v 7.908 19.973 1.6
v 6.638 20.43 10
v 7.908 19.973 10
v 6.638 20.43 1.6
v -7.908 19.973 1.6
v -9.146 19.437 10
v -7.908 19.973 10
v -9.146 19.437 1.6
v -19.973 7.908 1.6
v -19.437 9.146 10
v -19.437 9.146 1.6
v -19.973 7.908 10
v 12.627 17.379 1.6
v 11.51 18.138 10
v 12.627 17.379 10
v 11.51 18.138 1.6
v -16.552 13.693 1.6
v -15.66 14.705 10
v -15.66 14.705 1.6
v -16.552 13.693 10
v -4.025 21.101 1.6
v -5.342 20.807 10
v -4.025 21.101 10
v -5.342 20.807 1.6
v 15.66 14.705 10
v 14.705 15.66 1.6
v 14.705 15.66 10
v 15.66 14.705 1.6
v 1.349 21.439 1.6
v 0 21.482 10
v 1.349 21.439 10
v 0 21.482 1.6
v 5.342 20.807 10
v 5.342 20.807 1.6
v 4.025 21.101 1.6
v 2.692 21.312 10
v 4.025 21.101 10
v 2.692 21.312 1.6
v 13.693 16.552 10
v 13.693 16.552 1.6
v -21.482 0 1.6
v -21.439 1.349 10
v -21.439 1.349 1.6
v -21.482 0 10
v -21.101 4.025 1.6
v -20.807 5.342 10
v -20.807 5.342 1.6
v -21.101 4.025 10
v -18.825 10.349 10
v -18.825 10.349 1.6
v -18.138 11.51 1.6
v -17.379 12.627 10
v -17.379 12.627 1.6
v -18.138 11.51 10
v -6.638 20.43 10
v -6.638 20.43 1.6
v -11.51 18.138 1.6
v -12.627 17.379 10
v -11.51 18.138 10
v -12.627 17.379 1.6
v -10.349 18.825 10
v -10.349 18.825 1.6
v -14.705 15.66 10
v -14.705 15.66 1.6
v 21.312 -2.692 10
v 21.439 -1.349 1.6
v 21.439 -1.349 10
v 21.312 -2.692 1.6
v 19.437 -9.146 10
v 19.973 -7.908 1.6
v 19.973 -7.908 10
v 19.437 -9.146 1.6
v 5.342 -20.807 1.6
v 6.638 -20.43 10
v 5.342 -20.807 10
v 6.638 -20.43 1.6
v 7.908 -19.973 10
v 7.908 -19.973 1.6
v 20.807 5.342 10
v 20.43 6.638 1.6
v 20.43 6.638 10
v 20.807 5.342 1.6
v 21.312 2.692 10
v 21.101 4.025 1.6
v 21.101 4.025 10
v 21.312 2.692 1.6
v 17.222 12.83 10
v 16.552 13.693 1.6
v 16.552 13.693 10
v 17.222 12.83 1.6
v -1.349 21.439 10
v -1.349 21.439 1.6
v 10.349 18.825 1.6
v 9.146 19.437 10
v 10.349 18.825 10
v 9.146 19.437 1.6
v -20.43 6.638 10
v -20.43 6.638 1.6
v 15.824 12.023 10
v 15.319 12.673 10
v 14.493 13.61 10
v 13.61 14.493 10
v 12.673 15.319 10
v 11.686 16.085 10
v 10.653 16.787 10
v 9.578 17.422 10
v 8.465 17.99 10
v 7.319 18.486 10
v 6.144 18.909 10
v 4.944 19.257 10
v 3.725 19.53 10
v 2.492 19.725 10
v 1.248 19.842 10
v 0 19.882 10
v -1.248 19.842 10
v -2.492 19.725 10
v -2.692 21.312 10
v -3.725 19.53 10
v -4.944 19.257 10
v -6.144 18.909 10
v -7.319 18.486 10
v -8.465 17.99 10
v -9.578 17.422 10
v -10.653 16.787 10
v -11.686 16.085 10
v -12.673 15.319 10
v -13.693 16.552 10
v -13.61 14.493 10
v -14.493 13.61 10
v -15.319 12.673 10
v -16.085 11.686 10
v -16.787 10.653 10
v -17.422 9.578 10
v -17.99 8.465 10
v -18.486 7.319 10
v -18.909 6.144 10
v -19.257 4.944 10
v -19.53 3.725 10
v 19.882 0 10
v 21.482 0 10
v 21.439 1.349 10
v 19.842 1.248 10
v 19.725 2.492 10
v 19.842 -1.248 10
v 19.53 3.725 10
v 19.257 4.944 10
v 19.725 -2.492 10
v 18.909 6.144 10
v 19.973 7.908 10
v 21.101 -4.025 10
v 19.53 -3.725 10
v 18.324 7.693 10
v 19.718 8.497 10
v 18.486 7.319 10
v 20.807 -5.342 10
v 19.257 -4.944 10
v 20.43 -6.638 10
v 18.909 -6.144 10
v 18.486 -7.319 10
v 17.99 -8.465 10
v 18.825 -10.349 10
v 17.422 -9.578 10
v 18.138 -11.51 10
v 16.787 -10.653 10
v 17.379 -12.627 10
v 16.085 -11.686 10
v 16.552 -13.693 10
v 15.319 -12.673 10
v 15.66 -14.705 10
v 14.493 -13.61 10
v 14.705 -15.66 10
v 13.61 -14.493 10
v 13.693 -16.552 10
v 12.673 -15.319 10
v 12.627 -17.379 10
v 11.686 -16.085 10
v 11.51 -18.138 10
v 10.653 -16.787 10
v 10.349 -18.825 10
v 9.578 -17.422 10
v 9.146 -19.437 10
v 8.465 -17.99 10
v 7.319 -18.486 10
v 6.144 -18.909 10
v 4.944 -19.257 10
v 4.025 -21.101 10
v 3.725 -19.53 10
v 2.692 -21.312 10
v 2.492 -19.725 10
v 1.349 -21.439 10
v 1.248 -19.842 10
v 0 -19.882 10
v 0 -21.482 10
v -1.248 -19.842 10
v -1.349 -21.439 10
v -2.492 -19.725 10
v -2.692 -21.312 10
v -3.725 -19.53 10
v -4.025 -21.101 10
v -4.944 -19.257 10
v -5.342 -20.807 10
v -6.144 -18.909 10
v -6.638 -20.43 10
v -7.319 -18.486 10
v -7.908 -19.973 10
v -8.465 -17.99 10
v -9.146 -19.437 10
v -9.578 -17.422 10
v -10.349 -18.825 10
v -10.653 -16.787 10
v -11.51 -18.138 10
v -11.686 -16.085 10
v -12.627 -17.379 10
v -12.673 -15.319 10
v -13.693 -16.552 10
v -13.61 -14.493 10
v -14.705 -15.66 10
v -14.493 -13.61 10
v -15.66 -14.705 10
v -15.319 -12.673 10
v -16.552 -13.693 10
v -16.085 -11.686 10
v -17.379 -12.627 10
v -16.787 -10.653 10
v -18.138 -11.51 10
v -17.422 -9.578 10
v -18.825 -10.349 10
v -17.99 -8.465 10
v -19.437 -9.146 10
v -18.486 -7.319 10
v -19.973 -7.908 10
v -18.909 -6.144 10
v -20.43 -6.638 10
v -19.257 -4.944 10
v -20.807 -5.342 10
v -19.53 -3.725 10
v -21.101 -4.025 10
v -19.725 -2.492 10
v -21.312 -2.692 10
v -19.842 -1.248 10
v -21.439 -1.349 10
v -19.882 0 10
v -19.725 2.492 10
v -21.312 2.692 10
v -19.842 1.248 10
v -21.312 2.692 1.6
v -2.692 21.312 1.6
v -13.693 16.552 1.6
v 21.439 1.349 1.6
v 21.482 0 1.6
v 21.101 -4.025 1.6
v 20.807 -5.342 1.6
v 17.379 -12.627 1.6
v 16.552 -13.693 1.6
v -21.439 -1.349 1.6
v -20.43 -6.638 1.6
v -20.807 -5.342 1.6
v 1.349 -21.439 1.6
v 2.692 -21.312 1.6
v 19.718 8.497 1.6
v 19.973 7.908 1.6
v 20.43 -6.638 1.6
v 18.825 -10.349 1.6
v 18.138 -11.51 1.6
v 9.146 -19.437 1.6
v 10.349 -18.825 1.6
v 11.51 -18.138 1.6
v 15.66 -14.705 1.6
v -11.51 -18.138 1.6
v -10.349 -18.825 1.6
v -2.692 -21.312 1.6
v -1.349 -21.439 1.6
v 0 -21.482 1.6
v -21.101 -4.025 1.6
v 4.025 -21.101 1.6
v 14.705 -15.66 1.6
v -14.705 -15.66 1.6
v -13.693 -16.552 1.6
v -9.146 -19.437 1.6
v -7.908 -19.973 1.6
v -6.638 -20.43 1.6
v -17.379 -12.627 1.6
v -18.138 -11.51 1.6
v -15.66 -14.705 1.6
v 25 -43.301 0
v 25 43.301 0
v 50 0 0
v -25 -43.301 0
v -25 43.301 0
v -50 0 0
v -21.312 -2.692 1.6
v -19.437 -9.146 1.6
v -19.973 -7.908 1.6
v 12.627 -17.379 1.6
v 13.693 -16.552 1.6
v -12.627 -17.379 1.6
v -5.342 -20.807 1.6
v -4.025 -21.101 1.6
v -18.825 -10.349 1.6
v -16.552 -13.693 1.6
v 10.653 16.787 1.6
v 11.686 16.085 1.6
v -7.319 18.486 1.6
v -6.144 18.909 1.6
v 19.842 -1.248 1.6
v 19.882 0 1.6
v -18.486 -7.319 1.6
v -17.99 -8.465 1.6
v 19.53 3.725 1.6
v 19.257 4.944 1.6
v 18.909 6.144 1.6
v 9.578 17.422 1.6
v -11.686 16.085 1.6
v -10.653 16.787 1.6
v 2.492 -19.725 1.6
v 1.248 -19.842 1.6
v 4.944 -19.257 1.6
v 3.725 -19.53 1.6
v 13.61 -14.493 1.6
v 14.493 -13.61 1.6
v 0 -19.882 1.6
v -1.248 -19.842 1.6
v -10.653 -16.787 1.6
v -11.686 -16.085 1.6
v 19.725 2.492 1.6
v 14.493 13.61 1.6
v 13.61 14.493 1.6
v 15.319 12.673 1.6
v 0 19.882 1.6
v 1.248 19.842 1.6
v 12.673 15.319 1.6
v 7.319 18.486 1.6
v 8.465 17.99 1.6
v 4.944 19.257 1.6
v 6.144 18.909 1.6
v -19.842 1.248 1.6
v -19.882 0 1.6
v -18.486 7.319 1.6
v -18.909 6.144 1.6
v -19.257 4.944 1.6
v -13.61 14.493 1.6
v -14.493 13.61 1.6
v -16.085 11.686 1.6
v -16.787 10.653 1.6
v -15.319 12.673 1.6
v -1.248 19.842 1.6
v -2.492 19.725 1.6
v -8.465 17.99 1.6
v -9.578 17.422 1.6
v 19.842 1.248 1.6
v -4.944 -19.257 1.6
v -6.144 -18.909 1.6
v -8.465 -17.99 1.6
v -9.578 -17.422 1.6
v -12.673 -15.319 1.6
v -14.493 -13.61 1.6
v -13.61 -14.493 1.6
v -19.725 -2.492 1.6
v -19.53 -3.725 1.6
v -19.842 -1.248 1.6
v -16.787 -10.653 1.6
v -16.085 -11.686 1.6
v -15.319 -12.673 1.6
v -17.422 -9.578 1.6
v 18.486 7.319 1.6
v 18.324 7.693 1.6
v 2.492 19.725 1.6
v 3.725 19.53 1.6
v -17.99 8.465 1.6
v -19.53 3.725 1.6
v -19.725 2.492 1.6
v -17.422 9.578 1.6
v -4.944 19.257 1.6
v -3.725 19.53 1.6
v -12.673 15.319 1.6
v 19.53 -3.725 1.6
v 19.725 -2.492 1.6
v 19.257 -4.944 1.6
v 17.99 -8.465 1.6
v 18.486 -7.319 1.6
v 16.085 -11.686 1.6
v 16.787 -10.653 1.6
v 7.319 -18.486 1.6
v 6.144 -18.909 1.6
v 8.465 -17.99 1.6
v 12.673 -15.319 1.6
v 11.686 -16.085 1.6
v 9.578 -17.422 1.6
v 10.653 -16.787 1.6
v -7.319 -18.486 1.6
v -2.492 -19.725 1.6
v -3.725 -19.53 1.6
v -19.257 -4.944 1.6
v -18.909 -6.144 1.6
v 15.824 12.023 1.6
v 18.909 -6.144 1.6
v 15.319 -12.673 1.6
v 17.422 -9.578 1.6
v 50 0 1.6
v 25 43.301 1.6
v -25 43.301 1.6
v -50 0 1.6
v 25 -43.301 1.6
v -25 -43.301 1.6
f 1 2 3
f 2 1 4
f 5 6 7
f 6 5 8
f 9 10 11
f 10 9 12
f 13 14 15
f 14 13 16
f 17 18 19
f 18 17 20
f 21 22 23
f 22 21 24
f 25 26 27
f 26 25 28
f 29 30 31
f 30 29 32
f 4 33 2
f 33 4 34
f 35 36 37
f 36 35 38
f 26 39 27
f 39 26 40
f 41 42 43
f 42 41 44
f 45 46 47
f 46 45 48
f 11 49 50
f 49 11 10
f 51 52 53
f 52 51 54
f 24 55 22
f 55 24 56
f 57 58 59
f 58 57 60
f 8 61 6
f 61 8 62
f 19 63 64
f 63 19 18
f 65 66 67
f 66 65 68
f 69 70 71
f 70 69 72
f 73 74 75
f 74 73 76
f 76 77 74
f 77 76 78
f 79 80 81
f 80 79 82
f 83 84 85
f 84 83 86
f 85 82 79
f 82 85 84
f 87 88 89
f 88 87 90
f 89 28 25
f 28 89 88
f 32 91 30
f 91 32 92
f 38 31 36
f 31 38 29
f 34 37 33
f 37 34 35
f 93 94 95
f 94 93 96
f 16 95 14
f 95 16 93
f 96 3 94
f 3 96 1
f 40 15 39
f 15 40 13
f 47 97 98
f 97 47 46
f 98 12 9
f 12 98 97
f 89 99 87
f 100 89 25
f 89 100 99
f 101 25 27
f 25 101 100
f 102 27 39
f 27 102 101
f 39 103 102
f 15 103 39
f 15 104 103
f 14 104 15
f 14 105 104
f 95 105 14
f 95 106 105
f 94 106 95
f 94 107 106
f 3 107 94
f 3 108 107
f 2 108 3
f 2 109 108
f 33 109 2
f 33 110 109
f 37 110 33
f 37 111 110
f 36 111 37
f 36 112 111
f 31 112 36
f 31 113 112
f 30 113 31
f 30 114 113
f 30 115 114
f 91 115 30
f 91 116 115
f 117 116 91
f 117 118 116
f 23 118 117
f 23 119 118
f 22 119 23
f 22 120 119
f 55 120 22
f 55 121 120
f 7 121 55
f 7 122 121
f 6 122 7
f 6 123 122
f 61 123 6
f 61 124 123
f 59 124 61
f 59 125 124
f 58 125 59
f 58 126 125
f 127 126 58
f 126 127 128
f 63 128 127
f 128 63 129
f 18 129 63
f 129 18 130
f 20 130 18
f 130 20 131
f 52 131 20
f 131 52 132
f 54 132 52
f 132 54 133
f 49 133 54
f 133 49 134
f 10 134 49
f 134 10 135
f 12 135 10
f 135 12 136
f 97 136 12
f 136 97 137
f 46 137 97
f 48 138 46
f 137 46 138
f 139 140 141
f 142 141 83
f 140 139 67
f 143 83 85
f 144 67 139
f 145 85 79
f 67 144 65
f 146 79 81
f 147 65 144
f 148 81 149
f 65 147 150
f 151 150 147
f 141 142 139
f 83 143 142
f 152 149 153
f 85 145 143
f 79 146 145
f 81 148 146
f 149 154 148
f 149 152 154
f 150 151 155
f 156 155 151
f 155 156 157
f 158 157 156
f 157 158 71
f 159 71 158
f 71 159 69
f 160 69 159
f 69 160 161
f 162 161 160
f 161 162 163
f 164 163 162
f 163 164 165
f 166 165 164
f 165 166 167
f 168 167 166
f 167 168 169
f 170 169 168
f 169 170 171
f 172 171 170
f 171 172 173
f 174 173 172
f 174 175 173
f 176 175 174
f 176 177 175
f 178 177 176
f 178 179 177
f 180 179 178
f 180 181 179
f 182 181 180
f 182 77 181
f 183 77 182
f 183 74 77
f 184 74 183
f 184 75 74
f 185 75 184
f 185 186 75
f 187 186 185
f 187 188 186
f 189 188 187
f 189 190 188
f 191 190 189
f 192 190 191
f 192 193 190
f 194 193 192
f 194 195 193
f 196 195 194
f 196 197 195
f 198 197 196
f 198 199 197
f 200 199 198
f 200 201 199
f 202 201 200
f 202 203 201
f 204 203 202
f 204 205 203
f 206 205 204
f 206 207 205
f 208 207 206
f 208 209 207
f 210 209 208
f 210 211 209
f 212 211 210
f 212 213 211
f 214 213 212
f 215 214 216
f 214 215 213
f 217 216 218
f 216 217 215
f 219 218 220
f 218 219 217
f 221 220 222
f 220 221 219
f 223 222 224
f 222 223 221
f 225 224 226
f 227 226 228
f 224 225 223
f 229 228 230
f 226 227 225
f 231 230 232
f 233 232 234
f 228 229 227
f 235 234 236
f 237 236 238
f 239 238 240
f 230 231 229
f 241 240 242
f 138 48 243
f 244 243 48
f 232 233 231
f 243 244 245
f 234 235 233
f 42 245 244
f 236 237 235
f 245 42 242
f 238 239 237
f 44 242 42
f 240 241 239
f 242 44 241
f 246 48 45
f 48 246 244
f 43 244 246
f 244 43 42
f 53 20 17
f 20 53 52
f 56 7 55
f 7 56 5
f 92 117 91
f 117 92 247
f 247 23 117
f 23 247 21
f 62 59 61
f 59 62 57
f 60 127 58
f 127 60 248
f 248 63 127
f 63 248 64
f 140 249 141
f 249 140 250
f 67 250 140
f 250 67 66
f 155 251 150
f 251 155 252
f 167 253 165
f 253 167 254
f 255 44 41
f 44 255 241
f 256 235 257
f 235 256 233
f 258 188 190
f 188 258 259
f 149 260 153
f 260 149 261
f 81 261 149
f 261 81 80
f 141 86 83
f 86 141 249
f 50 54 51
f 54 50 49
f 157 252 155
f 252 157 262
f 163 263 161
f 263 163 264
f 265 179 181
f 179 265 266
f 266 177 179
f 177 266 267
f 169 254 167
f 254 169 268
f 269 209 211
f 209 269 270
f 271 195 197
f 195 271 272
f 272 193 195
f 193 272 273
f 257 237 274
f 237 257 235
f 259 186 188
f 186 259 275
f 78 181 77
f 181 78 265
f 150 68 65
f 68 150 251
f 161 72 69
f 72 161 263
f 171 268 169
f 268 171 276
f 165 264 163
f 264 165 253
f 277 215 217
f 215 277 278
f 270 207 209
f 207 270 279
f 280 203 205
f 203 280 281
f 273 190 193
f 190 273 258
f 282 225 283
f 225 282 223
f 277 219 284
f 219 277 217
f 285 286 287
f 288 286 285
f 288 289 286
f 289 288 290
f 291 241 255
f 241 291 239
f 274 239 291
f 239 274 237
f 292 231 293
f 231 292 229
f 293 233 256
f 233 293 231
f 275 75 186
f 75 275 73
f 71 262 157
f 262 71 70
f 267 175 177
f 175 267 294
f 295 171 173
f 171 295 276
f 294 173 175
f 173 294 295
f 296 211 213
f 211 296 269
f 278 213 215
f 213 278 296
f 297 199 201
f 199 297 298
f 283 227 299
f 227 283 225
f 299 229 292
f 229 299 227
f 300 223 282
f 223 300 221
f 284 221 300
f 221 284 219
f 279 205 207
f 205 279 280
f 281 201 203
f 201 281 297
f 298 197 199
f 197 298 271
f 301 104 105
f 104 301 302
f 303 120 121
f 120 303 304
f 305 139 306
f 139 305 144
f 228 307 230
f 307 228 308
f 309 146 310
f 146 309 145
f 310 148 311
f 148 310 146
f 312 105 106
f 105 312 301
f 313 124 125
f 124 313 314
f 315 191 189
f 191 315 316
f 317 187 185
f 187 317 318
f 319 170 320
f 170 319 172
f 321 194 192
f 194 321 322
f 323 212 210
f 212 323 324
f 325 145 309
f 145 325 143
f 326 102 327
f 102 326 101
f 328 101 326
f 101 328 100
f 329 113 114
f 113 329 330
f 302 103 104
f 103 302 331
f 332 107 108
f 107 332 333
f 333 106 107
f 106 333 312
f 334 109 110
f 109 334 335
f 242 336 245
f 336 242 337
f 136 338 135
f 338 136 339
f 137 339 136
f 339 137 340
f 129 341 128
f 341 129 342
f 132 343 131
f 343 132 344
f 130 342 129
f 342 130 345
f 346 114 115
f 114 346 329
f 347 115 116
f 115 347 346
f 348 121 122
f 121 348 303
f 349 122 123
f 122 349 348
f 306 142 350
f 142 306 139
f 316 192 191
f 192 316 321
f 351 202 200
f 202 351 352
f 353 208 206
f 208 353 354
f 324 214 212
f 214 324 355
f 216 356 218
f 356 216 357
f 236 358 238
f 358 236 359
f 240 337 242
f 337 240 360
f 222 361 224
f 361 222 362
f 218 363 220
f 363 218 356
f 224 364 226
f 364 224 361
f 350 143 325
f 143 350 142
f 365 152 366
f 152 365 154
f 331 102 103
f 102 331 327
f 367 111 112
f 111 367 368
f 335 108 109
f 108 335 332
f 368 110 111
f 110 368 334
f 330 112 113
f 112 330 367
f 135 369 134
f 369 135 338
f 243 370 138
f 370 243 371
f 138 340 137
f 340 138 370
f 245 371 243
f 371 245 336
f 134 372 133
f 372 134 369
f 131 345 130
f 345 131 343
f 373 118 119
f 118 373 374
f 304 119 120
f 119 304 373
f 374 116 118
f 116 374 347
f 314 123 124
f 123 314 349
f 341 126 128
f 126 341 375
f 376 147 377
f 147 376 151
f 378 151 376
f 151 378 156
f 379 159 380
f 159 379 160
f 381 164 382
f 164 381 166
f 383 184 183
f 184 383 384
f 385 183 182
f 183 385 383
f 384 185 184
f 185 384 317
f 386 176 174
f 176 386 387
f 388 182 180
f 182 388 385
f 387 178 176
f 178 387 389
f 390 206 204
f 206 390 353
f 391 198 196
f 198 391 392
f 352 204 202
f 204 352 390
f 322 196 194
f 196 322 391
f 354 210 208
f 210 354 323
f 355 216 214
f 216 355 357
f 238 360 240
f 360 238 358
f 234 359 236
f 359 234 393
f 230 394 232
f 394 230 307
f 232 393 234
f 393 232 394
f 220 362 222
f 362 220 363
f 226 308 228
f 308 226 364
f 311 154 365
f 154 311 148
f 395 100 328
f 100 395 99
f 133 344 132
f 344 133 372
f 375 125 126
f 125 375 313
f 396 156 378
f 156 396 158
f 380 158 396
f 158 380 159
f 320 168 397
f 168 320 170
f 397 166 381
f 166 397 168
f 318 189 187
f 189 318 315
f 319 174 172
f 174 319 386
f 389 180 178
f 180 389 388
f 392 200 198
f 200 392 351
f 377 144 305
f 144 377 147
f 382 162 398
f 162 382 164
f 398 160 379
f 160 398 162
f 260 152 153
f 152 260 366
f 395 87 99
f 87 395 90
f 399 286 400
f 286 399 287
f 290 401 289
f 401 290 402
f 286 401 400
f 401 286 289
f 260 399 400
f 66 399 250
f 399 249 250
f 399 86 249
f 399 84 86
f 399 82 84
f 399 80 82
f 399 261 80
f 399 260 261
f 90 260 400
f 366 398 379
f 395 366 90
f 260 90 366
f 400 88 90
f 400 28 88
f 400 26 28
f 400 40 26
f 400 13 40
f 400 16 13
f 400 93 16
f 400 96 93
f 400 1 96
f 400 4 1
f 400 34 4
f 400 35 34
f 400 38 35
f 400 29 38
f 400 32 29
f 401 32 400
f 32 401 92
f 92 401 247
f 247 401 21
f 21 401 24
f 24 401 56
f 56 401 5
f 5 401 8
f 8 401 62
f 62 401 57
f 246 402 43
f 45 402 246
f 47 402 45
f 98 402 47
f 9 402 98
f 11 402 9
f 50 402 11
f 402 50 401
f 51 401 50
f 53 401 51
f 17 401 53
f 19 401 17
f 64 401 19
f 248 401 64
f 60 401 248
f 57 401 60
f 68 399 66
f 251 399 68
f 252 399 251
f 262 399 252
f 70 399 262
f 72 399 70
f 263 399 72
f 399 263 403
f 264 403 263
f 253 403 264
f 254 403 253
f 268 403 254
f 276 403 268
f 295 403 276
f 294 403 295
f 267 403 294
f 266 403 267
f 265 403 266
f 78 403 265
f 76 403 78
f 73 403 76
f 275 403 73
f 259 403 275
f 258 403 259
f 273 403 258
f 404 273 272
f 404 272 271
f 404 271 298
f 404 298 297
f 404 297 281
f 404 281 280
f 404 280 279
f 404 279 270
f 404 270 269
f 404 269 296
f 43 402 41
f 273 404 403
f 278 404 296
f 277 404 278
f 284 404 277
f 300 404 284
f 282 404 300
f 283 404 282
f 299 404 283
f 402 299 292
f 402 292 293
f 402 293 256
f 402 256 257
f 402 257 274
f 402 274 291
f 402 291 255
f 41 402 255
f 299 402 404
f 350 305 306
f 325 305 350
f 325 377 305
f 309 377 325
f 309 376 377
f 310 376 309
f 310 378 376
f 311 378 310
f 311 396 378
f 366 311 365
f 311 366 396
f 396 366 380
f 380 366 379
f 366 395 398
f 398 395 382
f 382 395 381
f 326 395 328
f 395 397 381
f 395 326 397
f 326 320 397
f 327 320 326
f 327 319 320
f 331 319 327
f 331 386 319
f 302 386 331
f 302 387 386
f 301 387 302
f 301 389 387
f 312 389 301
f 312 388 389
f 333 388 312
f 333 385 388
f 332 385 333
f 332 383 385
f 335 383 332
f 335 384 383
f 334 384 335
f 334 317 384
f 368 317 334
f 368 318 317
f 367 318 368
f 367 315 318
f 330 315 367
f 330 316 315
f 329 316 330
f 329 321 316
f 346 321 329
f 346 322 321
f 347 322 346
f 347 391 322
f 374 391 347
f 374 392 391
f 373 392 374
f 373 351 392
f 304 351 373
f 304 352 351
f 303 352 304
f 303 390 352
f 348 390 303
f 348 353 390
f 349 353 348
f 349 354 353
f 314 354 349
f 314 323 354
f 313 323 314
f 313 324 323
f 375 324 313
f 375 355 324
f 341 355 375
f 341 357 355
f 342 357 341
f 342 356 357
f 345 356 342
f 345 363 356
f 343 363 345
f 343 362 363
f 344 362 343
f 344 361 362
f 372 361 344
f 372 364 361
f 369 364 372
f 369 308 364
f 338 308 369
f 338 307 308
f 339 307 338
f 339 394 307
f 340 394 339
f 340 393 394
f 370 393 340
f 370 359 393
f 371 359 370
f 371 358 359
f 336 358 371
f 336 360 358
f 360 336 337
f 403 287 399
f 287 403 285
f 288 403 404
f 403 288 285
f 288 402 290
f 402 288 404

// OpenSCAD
// Base of the torch shell

// Center cylinder parameter
ls_l = 140;
wall_cylinder = 0.8;
radius_cylinder = ls_l / (2* PI);

wall = 1.6;

// Inner rim of the base
radius_rim = radius_cylinder - wall_cylinder;
height_rim = 10;

// Cutout
c_h = height_rim + 3;
c_w = 5;

// Base plate
//circle( r = 50, $fn = 6 );
cylinder( h = wall, r = 50, $fn = 6 );

difference() {
    cylinder(h = height_rim, r = radius_rim, $fn=100);
    translate([0, 0, -3])
    cylinder(h = height_rim + 6, r = radius_rim-wall, $fn=100);

    rotate( [ 0, 0, 30 ] )
    translate( [radius_rim, 0, c_h / 2 - 1] )
    cube( size = [ 5, c_w, c_h ], center = true );
    
    //translate( [dx, -c_w/2, dz] )
    //cube( size = [ 5, c_w, 20 ], center = false );
}
